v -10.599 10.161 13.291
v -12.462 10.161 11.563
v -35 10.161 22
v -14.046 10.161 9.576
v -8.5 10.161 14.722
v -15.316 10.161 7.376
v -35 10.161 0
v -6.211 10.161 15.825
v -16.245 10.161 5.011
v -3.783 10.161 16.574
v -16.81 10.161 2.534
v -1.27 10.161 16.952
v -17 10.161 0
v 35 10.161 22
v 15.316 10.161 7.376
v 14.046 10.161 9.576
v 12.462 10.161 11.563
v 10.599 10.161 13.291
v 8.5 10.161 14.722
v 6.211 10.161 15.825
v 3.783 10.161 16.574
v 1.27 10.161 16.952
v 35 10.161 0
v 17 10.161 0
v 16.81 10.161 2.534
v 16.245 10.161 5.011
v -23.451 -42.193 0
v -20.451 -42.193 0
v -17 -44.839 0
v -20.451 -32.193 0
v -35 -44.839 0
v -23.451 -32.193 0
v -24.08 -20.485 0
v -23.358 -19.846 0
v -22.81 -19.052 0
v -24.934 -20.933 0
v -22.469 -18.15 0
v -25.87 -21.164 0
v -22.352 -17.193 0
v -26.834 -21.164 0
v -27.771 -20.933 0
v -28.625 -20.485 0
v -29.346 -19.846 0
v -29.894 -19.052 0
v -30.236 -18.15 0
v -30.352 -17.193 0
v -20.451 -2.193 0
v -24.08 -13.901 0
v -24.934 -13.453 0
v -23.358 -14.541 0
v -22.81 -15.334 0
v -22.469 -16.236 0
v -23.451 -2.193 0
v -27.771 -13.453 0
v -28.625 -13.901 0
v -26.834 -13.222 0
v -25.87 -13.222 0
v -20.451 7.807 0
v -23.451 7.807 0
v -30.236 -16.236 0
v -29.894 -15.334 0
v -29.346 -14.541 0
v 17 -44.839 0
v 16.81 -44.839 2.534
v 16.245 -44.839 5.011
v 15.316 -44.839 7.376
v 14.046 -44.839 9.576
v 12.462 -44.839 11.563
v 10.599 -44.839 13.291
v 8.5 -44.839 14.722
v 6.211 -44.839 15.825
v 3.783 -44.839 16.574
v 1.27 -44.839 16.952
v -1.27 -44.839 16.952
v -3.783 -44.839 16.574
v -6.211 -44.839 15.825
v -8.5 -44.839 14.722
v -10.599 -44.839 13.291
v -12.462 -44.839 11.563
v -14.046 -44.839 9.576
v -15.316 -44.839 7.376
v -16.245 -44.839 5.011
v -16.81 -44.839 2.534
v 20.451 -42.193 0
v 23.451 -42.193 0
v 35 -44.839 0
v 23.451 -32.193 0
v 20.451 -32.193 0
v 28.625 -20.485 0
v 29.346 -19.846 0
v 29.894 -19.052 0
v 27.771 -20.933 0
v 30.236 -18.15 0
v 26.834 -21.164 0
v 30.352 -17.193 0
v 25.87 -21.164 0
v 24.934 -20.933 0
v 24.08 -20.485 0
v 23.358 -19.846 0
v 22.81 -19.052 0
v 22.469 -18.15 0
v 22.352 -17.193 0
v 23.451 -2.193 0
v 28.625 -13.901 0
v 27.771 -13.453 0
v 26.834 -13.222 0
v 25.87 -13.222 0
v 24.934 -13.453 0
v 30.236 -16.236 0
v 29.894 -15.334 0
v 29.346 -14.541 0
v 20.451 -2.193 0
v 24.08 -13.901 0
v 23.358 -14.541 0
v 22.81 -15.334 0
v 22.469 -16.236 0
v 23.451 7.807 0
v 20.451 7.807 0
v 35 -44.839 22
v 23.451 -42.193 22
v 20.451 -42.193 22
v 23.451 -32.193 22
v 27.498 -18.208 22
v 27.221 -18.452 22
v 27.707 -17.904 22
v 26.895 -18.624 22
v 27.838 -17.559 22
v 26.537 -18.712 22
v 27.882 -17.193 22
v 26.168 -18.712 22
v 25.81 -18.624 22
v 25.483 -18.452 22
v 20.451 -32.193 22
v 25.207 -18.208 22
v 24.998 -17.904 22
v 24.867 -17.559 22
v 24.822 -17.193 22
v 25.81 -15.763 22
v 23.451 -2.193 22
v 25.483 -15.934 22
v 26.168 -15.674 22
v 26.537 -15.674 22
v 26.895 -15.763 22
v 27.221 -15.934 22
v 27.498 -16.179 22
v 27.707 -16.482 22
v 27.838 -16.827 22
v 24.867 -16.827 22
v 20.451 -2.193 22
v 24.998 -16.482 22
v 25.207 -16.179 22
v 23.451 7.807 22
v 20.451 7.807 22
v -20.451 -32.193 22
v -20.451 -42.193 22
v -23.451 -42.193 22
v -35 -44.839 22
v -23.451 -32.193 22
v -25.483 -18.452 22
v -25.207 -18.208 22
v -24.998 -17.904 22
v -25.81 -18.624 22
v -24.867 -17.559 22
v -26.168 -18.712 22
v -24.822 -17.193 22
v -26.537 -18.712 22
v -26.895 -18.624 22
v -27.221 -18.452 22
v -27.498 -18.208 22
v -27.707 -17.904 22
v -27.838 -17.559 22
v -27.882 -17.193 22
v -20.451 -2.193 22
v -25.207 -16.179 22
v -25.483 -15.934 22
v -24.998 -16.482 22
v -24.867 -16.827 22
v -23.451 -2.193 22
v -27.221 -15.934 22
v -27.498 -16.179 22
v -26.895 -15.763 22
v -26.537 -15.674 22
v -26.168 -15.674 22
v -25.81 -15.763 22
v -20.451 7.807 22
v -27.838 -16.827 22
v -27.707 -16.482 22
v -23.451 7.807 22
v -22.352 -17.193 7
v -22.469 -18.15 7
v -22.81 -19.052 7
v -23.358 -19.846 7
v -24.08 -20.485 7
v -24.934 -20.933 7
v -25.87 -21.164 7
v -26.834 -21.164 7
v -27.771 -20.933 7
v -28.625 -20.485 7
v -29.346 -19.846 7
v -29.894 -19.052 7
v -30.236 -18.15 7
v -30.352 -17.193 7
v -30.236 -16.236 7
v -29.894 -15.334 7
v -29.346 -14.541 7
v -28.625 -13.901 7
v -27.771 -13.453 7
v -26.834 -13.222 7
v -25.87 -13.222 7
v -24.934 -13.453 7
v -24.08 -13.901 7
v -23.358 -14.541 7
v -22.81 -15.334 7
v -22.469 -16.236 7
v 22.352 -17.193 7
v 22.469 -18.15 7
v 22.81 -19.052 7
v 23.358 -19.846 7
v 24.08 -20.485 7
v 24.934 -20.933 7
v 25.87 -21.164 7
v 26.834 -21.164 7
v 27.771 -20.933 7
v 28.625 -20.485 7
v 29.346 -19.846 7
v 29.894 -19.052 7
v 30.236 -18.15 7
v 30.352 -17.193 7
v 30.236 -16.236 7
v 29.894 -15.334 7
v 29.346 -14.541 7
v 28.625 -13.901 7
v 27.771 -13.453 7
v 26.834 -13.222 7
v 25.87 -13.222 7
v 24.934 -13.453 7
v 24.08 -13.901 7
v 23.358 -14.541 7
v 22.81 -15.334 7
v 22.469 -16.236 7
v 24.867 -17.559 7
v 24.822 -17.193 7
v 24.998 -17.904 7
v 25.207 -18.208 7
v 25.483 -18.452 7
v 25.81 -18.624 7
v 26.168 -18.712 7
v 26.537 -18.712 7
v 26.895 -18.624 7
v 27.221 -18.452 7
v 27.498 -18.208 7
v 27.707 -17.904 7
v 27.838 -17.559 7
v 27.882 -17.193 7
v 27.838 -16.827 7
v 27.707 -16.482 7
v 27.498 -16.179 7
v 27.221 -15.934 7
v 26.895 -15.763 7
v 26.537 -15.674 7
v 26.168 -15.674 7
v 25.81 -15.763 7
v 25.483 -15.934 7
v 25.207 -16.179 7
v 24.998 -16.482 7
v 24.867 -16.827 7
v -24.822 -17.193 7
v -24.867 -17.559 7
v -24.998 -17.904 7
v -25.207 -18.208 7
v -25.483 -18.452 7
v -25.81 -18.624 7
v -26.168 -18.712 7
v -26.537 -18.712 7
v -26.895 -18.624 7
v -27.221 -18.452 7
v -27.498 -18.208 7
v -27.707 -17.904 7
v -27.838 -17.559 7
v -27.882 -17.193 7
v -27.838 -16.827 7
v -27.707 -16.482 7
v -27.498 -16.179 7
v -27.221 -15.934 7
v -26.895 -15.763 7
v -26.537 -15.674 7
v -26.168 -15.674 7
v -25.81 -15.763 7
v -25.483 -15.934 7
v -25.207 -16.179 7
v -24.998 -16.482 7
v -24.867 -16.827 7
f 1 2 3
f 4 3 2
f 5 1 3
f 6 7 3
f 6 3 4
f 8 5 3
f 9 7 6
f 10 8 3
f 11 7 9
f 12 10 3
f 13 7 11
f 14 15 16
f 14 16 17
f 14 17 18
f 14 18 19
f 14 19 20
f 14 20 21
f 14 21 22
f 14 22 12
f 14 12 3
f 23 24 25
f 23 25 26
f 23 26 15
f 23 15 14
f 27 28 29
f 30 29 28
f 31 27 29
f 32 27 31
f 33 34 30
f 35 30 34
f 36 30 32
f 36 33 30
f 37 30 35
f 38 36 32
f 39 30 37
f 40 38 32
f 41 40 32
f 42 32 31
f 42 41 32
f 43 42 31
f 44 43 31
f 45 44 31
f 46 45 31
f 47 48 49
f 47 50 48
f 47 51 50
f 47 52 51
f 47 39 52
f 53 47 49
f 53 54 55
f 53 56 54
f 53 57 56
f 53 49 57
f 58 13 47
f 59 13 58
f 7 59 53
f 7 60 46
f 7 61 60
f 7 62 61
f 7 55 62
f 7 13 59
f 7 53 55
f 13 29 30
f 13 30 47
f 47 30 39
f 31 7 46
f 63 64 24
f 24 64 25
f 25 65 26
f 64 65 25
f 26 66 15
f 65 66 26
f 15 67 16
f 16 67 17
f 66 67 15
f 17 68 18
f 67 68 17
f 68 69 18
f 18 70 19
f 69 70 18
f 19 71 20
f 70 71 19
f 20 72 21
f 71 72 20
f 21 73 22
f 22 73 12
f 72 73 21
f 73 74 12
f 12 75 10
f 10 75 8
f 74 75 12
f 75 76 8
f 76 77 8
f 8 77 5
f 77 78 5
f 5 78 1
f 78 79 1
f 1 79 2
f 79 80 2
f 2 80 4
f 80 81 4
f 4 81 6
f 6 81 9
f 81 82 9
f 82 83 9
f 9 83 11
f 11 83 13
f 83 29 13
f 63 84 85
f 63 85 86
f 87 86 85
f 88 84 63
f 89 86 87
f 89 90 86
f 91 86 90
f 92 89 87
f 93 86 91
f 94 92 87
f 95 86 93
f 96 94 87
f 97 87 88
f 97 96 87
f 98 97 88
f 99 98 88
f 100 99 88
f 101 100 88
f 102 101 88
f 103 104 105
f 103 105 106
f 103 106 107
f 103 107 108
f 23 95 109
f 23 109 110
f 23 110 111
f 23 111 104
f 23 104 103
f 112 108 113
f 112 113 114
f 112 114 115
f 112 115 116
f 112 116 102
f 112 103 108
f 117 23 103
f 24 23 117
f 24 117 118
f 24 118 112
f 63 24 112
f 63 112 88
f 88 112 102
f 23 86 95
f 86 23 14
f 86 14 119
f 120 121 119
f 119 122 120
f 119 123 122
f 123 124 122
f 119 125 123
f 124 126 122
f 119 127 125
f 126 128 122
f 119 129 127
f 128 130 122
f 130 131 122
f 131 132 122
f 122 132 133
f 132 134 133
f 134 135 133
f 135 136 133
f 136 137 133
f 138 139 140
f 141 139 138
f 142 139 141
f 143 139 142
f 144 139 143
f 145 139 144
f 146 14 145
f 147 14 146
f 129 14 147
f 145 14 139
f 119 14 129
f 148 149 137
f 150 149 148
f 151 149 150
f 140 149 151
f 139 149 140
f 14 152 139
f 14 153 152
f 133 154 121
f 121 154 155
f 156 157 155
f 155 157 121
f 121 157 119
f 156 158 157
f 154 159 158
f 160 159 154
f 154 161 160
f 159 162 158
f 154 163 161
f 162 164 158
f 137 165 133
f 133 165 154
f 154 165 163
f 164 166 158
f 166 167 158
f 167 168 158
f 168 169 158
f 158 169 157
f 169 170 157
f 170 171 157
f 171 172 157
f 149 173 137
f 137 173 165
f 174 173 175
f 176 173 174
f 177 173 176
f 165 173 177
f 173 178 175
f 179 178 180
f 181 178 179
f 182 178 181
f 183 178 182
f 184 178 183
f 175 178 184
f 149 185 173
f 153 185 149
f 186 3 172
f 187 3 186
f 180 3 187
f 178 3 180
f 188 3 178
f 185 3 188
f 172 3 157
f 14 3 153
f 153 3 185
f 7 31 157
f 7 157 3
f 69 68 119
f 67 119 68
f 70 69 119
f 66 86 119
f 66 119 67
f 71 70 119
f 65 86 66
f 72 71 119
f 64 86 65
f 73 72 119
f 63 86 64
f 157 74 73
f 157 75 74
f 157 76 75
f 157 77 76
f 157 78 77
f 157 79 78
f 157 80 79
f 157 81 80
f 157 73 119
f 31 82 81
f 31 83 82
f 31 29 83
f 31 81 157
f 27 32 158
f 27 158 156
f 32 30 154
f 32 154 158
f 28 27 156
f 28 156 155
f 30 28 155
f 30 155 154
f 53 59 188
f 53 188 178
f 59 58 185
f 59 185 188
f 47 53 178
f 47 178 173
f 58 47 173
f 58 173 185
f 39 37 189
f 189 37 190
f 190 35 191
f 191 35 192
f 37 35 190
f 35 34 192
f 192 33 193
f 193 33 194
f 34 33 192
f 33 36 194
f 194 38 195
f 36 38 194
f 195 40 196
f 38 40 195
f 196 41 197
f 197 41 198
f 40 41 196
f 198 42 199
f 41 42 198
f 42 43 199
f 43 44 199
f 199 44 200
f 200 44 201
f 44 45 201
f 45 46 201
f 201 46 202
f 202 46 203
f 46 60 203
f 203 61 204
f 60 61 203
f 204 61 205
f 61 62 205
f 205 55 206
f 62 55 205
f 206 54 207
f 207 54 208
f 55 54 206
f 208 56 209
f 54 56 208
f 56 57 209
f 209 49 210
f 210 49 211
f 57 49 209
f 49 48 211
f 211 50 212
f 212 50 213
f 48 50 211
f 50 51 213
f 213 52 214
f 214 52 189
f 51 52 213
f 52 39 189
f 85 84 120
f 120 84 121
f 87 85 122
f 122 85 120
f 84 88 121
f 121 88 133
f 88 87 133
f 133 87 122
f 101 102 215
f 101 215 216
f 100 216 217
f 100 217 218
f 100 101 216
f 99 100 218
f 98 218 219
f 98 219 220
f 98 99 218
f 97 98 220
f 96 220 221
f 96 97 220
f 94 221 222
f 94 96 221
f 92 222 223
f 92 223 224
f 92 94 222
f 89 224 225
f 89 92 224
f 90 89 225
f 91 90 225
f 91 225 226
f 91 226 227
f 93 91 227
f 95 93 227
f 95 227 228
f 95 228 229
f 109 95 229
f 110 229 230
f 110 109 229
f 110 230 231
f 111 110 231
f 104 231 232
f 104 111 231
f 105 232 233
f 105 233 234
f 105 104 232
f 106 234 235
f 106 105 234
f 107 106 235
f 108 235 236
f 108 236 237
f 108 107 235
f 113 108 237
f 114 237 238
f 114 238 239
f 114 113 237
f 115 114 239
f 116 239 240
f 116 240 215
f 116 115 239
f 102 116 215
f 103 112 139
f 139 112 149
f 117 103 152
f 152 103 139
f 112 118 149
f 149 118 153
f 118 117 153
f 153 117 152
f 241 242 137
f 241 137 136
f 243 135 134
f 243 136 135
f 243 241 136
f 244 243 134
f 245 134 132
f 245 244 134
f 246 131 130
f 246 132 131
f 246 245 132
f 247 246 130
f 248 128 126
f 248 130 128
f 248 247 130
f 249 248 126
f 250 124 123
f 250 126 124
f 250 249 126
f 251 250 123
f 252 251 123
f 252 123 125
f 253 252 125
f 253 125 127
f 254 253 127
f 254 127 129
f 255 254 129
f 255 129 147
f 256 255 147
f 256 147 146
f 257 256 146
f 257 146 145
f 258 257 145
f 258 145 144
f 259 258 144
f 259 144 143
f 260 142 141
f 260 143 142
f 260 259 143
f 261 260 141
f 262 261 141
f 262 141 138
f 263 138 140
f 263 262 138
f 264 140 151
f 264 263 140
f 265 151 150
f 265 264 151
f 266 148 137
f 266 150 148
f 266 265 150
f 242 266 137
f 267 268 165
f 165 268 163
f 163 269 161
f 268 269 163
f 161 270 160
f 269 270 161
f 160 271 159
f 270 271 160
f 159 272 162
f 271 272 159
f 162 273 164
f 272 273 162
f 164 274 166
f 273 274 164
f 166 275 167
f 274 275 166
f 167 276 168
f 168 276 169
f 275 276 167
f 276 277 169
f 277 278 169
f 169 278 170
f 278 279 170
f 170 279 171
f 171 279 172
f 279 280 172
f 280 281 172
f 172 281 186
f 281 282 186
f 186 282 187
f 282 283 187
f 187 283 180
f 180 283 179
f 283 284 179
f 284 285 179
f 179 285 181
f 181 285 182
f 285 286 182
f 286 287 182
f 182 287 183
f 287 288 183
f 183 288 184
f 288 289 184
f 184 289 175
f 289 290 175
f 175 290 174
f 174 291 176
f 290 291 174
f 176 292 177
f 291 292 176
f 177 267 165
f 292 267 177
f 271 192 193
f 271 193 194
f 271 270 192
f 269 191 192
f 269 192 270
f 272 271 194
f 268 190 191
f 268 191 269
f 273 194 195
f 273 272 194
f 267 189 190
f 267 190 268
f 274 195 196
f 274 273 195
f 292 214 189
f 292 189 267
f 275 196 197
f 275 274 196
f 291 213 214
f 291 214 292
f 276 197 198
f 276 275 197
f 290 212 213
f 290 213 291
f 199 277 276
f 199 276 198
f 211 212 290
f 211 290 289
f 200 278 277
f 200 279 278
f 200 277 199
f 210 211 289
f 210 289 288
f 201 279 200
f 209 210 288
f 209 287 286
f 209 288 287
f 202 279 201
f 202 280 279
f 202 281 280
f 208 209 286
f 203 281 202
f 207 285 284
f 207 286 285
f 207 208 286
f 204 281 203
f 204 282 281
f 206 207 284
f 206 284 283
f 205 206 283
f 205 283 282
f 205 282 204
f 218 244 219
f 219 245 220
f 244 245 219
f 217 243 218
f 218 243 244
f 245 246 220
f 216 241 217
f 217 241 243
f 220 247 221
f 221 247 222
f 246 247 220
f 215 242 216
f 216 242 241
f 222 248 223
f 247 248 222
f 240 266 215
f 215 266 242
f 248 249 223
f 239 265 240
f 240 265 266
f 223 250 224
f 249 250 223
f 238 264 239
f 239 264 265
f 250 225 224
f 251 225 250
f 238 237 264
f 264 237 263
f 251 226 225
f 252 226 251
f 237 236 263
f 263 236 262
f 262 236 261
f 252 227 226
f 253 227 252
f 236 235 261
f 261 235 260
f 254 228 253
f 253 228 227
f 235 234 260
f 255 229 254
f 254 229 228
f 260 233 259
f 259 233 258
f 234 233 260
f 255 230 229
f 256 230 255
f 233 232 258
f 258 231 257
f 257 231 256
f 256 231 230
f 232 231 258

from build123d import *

# Parameters (mm, degrees)
SKETCH_W        = 70
SKETCH_H        = 55
PAD_DEPTH       = 22
SKETCH001_R     = 17
POCKET_DEPTH    = 55.001
SKETCH002_R     = 1.53
SKETCH002_W     = 3
SKETCH002_H     = 10
POCKET001_DEPTH = 205.4022
SKETCH003_R     = 4
POCKET002_DEPTH = 7


with BuildPart() as part:
    # Sketch → Pad (new body)
    with BuildSketch(Plane.XY):
        with Locations((0, -17.338946)):
            Rectangle(SKETCH_W, SKETCH_H)
    extrude(amount=PAD_DEPTH)

    # Sketch001 (on Face3 of Pad) → Pocket (cut, through all)
    with BuildSketch(Plane.XZ.offset(44.838946)):
        Circle(SKETCH001_R)
    extrude(amount=-POCKET_DEPTH, mode=Mode.SUBTRACT)

    # Sketch002 (on Face2 of Pocket) → Pocket001 (cut, through all)
    with BuildSketch(Plane(origin=(0, 0, 0), x_dir=(1, 0, 0), z_dir=(0, 0, -1))):
        with Locations((-26.352302, 17.193167)):
            Circle(SKETCH002_R)
        with Locations((-21.951078, -2.806833)):
            Rectangle(SKETCH002_W, SKETCH002_H)
        with Locations((-21.951078, 37.193167)):
            Rectangle(SKETCH002_W, SKETCH002_H)
    pocket001 = extrude(amount=-POCKET001_DEPTH, mode=Mode.SUBTRACT)

    # Mirrored: Pocket001 across Sketch002 V_Axis
    add(pocket001.mirror(Plane(origin=(0, 0, 0), x_dir=(0, 0, -1), z_dir=(1, 0, 0))), mode=Mode.SUBTRACT)

    # Sketch003 (on Face2 of Mirrored) → Pocket002 (cut)
    with BuildSketch(Plane(origin=(0, 0, 0), x_dir=(1, 0, 0), z_dir=(0, 0, -1))):
        with Locations((-26.352302, 17.193167)):
            Circle(SKETCH003_R)
    pocket002 = extrude(amount=-POCKET002_DEPTH, mode=Mode.SUBTRACT)

    # Mirrored001: Pocket002 across Sketch003 V_Axis
    add(pocket002.mirror(Plane(origin=(0, 0, 0), x_dir=(0, 0, -1), z_dir=(1, 0, 0))), mode=Mode.SUBTRACT)


solid = part.part
